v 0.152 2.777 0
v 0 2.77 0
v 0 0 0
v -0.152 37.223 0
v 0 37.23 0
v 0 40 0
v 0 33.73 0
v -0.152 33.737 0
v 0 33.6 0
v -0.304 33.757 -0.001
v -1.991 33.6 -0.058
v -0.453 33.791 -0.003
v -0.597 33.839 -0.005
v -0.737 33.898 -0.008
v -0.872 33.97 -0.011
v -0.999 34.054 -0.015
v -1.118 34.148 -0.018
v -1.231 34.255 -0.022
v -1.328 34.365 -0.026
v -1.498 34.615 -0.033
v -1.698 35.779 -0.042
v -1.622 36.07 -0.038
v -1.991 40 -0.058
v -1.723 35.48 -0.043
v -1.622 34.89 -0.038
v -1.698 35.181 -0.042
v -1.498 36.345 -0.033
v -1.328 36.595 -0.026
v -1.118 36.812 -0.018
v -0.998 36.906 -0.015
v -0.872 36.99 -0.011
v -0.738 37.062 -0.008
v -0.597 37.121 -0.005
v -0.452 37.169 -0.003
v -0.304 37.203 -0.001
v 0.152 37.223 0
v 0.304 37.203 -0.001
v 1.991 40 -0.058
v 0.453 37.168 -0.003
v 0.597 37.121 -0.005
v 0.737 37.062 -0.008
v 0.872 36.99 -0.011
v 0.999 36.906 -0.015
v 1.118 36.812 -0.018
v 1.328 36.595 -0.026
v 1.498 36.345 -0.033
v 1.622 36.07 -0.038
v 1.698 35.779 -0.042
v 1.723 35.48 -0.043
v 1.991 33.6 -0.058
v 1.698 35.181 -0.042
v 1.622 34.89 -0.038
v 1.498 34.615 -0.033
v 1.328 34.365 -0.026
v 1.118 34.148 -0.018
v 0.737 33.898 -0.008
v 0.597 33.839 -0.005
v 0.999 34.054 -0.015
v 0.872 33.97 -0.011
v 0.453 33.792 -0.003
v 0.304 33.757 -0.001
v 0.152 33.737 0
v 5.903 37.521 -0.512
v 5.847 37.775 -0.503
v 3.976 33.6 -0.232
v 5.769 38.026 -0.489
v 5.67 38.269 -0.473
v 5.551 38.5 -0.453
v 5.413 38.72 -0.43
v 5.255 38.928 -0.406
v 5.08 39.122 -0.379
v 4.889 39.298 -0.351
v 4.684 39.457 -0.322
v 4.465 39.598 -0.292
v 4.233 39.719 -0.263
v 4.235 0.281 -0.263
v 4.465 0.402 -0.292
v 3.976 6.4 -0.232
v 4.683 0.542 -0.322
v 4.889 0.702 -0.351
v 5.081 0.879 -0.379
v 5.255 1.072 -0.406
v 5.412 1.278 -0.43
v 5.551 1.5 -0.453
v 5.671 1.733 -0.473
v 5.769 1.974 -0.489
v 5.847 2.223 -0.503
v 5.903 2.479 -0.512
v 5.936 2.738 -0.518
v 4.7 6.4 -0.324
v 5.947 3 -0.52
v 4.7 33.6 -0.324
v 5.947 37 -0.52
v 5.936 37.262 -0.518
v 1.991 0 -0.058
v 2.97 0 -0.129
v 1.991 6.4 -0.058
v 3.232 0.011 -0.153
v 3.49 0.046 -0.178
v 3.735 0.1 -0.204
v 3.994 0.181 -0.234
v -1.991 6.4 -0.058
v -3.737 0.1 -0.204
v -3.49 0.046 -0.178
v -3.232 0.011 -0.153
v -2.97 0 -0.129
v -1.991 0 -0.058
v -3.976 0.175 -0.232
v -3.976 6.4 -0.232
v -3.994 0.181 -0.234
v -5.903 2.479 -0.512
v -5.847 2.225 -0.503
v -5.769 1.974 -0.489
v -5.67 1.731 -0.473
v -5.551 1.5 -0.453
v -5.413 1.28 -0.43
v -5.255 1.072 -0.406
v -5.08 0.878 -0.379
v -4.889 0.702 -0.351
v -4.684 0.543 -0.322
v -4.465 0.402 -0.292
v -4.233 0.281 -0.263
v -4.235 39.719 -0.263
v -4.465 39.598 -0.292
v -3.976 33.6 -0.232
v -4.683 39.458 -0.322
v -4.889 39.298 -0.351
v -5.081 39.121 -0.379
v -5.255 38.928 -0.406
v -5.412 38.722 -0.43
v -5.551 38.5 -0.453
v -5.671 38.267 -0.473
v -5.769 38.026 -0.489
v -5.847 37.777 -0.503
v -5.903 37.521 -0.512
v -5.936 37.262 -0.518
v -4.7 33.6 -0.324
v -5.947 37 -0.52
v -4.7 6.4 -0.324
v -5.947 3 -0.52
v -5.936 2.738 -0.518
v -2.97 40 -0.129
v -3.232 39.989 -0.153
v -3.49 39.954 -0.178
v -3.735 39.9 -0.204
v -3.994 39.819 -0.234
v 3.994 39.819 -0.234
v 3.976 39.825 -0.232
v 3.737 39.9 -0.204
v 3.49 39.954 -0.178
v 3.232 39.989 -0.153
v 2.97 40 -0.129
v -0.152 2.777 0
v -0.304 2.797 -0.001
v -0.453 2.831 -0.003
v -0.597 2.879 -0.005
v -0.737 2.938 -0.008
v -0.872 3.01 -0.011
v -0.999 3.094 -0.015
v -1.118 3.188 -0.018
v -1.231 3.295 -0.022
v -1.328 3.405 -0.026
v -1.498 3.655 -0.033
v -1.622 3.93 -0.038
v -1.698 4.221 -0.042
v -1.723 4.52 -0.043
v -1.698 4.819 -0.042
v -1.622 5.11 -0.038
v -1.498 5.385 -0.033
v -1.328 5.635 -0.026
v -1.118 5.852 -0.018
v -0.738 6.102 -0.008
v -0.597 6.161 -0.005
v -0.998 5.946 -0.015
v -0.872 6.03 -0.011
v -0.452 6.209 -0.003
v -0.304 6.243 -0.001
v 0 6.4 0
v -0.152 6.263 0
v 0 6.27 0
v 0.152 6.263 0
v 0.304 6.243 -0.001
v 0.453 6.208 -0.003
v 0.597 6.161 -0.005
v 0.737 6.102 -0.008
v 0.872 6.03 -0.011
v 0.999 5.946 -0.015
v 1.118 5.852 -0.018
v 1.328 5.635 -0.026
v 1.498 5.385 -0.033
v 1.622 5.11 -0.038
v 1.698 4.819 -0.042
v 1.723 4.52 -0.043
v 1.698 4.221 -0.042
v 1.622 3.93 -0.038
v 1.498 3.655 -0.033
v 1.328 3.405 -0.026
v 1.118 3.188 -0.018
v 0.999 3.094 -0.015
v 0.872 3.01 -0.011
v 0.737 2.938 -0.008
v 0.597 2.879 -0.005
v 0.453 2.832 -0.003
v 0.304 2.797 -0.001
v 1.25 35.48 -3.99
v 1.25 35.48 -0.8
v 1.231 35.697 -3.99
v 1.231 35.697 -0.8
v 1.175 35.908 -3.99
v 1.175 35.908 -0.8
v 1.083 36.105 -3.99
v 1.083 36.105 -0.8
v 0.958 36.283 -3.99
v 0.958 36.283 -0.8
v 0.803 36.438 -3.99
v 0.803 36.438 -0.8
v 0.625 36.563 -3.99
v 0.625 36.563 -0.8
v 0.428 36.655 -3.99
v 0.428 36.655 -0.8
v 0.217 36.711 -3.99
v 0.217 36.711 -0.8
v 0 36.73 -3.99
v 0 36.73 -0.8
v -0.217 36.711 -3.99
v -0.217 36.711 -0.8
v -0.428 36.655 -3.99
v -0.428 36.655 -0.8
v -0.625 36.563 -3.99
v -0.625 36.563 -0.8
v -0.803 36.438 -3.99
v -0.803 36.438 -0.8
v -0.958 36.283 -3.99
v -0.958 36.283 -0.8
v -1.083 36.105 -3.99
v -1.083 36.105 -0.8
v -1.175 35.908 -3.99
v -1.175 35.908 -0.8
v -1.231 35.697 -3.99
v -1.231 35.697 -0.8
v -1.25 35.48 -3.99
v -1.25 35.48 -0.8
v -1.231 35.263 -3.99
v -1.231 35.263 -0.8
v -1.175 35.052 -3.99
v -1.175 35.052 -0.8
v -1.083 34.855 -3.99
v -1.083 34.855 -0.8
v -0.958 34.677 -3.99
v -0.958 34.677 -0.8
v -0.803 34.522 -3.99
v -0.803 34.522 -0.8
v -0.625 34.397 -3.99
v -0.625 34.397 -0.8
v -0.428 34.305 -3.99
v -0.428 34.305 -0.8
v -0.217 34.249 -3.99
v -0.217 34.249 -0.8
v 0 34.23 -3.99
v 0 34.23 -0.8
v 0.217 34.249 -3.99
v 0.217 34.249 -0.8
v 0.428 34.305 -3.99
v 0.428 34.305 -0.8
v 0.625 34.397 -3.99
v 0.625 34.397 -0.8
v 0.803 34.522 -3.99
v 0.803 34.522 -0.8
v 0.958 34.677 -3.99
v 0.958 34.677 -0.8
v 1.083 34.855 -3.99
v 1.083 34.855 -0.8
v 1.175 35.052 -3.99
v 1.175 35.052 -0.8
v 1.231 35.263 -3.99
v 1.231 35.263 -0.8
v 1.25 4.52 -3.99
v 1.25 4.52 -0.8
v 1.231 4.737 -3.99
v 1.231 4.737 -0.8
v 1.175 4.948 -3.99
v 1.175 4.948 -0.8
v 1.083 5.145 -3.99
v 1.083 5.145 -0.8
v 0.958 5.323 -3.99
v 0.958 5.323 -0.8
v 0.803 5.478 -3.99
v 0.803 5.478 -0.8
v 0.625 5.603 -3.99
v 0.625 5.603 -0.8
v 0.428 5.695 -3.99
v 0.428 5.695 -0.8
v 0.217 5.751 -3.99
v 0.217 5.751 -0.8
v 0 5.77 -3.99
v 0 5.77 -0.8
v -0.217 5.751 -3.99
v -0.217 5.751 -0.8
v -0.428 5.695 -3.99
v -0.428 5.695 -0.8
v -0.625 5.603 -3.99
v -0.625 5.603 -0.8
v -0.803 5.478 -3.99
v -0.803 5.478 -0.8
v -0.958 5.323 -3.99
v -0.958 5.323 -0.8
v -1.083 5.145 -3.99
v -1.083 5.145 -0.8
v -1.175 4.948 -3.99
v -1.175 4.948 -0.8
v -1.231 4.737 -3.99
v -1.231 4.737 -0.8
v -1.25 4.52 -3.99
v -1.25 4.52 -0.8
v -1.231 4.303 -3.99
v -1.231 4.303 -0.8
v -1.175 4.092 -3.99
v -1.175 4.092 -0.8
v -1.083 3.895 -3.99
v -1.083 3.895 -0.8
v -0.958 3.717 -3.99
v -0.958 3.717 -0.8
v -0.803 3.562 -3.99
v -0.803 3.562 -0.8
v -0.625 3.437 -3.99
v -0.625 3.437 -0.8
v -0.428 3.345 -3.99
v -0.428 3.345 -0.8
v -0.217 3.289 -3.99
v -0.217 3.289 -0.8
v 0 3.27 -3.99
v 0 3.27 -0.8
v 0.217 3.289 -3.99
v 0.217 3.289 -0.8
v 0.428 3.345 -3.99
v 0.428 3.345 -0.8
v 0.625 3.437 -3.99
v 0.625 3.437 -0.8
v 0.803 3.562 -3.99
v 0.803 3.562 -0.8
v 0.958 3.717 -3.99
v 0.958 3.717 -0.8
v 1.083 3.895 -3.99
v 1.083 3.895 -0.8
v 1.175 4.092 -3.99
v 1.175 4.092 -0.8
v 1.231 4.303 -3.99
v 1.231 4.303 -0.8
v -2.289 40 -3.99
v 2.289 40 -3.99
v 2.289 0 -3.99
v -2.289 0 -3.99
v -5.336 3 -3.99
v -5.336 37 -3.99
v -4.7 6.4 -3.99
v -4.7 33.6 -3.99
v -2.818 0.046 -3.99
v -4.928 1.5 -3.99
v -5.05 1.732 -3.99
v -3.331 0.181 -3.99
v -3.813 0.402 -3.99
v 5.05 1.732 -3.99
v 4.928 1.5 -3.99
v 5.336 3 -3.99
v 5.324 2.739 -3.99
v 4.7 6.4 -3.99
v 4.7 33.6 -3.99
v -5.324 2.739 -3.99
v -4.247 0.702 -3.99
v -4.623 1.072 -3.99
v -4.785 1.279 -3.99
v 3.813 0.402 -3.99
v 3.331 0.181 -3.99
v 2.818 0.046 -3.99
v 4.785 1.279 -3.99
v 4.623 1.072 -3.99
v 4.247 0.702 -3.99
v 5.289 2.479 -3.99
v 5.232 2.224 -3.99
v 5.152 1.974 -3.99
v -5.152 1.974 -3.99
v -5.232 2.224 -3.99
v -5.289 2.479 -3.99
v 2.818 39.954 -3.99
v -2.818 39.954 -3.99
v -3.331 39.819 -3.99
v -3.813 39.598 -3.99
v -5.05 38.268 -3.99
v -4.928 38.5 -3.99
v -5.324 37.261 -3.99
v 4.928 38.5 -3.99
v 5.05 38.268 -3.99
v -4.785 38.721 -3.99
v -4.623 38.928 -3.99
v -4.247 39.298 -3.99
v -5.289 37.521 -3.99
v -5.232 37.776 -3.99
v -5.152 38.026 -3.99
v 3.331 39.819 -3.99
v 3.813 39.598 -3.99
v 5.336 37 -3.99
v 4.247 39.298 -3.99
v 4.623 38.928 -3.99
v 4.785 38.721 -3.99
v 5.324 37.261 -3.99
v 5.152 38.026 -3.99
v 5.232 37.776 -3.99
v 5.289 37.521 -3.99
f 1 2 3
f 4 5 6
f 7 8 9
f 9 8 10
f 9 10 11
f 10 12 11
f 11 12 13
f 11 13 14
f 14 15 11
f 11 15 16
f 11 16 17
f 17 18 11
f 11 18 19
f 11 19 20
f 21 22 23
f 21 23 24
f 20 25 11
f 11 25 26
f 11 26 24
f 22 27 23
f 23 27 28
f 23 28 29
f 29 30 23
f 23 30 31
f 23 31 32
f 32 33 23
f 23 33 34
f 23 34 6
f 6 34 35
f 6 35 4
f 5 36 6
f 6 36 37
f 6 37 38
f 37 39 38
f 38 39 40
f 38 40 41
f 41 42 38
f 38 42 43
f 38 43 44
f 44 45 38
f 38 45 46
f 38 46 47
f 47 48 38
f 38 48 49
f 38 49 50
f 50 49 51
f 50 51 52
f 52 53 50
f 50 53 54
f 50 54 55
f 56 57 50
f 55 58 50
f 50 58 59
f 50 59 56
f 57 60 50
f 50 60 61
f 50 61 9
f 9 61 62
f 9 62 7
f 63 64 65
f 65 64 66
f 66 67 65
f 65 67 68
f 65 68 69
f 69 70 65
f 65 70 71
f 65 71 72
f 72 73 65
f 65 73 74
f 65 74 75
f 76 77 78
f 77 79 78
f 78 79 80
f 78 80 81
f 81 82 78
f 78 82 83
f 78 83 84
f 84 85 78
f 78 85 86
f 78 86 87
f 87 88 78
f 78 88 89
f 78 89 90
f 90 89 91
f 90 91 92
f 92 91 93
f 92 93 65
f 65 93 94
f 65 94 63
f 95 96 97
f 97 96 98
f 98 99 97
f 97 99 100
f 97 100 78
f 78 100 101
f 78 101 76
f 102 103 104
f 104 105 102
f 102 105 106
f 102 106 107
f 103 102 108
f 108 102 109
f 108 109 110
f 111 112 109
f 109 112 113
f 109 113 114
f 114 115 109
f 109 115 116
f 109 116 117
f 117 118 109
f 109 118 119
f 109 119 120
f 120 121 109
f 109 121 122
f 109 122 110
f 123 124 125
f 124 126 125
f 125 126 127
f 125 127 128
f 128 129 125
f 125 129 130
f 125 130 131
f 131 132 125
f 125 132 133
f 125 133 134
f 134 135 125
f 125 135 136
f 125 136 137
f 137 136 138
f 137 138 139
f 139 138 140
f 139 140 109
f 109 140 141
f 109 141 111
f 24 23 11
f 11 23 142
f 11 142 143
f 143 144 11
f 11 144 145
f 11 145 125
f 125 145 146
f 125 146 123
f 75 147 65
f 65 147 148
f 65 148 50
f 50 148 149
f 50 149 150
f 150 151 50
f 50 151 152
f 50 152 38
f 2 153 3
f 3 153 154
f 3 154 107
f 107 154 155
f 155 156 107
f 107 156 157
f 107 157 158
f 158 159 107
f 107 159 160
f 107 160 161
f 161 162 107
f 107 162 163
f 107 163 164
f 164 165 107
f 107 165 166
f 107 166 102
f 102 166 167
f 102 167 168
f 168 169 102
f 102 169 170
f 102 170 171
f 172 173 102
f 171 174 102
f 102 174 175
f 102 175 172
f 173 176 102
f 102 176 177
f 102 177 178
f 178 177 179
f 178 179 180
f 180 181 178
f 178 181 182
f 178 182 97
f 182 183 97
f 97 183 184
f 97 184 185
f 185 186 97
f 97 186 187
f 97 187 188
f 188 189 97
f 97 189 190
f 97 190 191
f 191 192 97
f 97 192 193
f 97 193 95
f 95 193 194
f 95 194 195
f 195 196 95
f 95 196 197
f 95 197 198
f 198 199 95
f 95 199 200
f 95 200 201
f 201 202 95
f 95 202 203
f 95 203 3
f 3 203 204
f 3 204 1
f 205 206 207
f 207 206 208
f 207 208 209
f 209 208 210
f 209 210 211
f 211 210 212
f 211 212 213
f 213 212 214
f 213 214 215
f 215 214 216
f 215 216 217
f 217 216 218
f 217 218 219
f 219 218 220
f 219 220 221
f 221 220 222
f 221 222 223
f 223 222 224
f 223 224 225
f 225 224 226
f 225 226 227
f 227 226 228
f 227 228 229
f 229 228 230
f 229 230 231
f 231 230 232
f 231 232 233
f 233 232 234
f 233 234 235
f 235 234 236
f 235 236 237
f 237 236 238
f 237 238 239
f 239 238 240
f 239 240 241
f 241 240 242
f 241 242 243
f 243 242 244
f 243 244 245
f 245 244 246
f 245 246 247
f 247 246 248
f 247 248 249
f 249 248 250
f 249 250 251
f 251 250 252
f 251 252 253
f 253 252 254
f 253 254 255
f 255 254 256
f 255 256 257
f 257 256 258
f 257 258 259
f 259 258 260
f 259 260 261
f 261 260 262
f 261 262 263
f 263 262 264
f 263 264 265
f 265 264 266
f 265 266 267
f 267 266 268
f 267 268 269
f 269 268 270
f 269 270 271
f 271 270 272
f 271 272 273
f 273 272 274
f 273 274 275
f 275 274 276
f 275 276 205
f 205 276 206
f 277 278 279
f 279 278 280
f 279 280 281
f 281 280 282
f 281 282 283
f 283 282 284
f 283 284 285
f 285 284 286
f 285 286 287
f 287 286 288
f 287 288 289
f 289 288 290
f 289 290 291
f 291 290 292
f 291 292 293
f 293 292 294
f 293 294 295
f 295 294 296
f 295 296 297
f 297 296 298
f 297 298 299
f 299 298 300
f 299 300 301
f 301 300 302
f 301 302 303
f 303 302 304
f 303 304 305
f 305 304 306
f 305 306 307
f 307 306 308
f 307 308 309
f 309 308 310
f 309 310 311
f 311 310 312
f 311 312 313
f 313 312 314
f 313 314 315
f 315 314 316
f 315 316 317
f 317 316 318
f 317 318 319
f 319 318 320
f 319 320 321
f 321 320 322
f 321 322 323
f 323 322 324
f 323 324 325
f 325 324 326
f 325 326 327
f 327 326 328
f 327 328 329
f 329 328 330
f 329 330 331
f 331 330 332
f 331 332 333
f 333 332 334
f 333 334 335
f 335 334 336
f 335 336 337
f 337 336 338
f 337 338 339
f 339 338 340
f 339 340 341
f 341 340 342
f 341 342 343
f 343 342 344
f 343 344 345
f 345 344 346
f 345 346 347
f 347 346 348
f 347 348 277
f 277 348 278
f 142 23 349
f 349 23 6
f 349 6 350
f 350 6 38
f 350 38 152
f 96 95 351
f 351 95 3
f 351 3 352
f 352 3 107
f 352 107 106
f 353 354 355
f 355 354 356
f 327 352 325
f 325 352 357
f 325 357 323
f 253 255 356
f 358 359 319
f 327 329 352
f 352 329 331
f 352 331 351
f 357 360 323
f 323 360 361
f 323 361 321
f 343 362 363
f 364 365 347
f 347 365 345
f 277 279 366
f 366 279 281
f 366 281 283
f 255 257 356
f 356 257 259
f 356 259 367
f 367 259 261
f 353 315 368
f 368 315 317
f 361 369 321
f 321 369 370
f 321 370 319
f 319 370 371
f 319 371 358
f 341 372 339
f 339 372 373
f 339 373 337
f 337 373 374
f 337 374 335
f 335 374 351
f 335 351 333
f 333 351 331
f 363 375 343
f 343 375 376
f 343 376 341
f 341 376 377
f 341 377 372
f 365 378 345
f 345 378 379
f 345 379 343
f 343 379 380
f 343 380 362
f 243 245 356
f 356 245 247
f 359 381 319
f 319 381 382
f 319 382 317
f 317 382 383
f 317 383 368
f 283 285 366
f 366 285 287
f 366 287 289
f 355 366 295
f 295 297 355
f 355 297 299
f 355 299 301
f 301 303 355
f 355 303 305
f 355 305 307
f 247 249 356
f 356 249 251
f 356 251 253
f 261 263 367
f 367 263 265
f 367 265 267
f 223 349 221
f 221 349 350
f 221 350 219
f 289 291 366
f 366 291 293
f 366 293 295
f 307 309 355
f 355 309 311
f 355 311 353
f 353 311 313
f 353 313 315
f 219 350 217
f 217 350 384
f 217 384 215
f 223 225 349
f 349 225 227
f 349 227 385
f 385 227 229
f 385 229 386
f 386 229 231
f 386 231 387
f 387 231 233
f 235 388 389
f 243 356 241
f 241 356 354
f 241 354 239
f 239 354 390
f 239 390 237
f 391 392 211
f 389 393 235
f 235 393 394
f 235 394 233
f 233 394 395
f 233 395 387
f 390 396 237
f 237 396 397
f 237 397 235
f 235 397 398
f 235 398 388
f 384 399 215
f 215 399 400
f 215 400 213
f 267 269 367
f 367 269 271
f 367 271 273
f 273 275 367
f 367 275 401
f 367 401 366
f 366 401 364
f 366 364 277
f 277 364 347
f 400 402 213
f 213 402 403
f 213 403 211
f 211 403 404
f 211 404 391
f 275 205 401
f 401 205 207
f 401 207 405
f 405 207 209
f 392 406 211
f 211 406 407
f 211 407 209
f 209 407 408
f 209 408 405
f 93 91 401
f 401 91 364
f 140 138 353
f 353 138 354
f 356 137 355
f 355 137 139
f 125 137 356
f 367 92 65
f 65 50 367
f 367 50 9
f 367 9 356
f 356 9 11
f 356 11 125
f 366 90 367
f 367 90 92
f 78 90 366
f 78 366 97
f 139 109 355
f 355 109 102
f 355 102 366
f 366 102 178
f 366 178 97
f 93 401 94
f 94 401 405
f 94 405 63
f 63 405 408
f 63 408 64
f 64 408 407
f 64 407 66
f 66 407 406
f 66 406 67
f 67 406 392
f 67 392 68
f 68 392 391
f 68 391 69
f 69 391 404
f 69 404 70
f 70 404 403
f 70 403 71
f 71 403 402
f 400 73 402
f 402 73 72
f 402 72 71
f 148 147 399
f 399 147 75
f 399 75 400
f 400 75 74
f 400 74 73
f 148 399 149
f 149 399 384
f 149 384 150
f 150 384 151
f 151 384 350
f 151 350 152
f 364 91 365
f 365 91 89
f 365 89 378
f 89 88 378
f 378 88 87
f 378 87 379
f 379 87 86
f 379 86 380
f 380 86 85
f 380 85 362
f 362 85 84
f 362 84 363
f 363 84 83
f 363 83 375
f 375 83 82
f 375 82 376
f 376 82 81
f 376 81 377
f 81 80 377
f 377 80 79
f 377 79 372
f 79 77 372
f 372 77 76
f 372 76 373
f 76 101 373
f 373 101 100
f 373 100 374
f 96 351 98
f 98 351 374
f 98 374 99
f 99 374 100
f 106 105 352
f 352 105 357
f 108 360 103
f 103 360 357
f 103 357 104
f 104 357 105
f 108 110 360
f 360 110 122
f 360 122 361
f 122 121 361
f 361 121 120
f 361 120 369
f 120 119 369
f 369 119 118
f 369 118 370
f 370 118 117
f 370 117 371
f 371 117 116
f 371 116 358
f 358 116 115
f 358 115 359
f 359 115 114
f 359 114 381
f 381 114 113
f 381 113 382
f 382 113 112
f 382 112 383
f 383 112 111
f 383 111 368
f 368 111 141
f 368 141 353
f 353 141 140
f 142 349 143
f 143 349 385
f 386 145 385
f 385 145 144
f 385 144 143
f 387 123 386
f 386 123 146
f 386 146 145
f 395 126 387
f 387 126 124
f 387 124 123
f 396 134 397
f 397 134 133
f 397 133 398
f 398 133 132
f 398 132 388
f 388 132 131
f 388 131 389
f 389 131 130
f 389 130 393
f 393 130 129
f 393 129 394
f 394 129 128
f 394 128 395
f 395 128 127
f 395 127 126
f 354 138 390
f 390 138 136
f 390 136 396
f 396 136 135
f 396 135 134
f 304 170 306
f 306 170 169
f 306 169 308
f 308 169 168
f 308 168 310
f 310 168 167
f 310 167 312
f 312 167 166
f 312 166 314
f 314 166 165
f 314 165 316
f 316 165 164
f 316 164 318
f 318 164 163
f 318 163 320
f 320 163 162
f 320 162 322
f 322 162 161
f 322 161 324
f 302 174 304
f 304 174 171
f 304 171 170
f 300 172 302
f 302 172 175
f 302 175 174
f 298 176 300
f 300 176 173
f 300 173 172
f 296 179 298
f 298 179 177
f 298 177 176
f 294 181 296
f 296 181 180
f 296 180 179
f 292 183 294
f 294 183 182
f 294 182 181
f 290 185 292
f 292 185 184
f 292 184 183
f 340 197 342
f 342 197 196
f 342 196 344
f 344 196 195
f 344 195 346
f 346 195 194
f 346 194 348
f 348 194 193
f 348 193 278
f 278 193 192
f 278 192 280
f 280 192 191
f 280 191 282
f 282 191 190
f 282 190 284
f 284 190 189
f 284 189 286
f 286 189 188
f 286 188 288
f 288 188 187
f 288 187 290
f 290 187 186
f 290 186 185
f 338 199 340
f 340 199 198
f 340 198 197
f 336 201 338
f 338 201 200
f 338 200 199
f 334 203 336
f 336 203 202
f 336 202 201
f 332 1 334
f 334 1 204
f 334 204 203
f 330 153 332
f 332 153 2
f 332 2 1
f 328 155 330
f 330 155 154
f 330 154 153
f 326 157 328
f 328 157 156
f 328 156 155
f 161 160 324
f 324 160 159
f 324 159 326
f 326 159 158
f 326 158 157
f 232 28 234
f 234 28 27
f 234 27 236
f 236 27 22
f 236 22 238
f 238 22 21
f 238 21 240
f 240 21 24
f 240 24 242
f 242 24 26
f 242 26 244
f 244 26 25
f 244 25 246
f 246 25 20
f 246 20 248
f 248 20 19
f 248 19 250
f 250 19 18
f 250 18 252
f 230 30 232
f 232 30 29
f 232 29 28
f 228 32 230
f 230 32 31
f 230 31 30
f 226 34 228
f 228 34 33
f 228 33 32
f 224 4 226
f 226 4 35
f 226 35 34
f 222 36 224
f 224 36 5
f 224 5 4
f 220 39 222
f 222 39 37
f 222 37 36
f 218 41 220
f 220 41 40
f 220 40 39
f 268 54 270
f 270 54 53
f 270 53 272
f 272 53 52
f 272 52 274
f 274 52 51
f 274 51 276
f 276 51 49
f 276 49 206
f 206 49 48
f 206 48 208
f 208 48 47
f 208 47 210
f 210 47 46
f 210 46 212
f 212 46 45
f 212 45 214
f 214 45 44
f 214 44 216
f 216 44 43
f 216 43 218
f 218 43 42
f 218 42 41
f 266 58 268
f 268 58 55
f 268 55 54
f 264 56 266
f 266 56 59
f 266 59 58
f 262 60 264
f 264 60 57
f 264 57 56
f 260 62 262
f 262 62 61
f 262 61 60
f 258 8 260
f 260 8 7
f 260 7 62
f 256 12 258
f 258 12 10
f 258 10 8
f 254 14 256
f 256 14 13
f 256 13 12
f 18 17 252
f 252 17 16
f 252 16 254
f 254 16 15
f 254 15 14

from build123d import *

# Parameters (mm, degrees)
SKETCH1_W                         = 2
SKETCH1_H                         = 40
BULK_EXTRUDE_ANGLE                = 20
CONNECTOR_PASSTHRU_DEPTH          = 41.516317865
CONNECTOR_PASSTHRU_DEPTH_BACK     = 41.516317865
SKETCH2_R                         = 1.25
SKETCH2_W                         = 9.4
SKETCH2_H                         = 27.2
REAR_FLATTENING_REACH             = 42.516
SKETCH3_W                         = 11.20030746
SKETCH3_H                         = 40
SKETCH3_R                         = 1.25
SKETCH3_W_2                       = 9.4
SKETCH3_H_2                       = 27.2
REAR_FLATTENING_DIRECTION_2_DEPTH = 1.5
SKETCH4_W                         = 5.422124609
SKETCH4_H                         = 40
CUT_EXTRUDE2_DEPTH                = 42.810193065
SKETCH5_W                         = 5.376196321
SKETCH5_H                         = 40
CUT_EXTRUDE3_DEPTH                = 42.810193065
FILLET1_R                         = 3


with BuildPart() as part:
    # Sketch1 → BULK EXTRUDE (revolve, symmetric)
    with BuildSketch(Plane(origin=(0, 0, 0), x_dir=(0, 0, -1), z_dir=(1, 0, 0))) as bulk_extrude_sk:
        with Locations((1, 20)):
            Rectangle(SKETCH1_W, SKETCH1_H)
    revolve(axis=Axis((0, 0, -34.25), (0, 1, 0)), revolution_arc=BULK_EXTRUDE_ANGLE / 2)
    revolve(bulk_extrude_sk.sketch, axis=Axis((0, 0, -34.25), (0, -1, 0)), revolution_arc=BULK_EXTRUDE_ANGLE / 2)

    # Sketch2 → CONNECTOR PASSTHRU (cut, two sides: drawn at the far end of the back side and taken through both)
    with BuildSketch(Plane.XY.offset(-CONNECTOR_PASSTHRU_DEPTH_BACK)):
        with Locations((0, 4.52)):
            Circle(SKETCH2_R)
        with Locations((0, 35.48)):
            Circle(SKETCH2_R)
        with Locations((0, 20)):
            Rectangle(SKETCH2_W, SKETCH2_H)
    extrude(amount=CONNECTOR_PASSTHRU_DEPTH + CONNECTOR_PASSTHRU_DEPTH_BACK, mode=Mode.SUBTRACT)

    # Sketch3 → REAR FLATTENING (add, up to next)
    with BuildSketch(Plane.XY.offset(-2.489949965), mode=Mode.PRIVATE) as rear_flattening_sk1:
        with Locations((0, 20)):
            Rectangle(SKETCH3_W, SKETCH3_H)
        with Locations((0, 4.52)):
            Circle(SKETCH3_R, mode=Mode.SUBTRACT)
        with Locations((0, 35.48)):
            Circle(SKETCH3_R, mode=Mode.SUBTRACT)
        with Locations((0, 20)):
            Rectangle(SKETCH3_W_2, SKETCH3_H_2, mode=Mode.SUBTRACT)
    rear_flattening_tool1 = extrude(rear_flattening_sk1.sketch, amount=REAR_FLATTENING_REACH, mode=Mode.PRIVATE) - part.part
    add(rear_flattening_tool1.solids().sort_by_distance((0, 0.415385, -2.48995))[0])

    # Sketch3 → REAR FLATTENING direction 2 (add)
    with BuildSketch(Plane.XY.offset(-2.489949965)):
        with Locations((0, 20)):
            Rectangle(SKETCH3_W, SKETCH3_H)
        with Locations((0, 4.52)):
            Circle(SKETCH3_R, mode=Mode.SUBTRACT)
        with Locations((0, 35.48)):
            Circle(SKETCH3_R, mode=Mode.SUBTRACT)
        with Locations((0, 20)):
            Rectangle(SKETCH3_W_2, SKETCH3_H_2, mode=Mode.SUBTRACT)
    extrude(amount=-REAR_FLATTENING_DIRECTION_2_DEPTH)

    # Sketch4 → Cut-Extrude2 (cut, through all)
    with BuildSketch(Plane(origin=(5.857094954, 0, -1.032763869), x_dir=(-0.17364817766693075, 0, -0.9848077530122081), z_dir=(0.9848077530122081, 0, -0.17364817766693075))):
        with Locations((2.190727846, 20)):
            Rectangle(SKETCH4_W, SKETCH4_H)
    extrude(amount=CUT_EXTRUDE2_DEPTH, mode=Mode.SUBTRACT)

    # Sketch5 → Cut-Extrude3 (cut, through all)
    with BuildSketch(Plane(origin=(-5.857094954, 0, -1.032763869), x_dir=(-0.17364817766693072, 0, 0.9848077530122081), z_dir=(-0.9848077530122081, 0, -0.17364817766693072))):
        with Locations((-2.167763702, 20)):
            Rectangle(SKETCH5_W, SKETCH5_H)
    extrude(amount=CUT_EXTRUDE3_DEPTH, mode=Mode.SUBTRACT)

    # Fillet1
    fillet1_edges = [part.edges().sort_by_distance(p)[0] for p in [
        (5.641556672, 40, -2.255142212),
        (5.641556672, 0, -2.255142212),
        (-5.641556672, 0, -2.255142212),
        (-5.641556672, 40, -2.255142212),
    ]]
    fillet(fillet1_edges, radius=FILLET1_R)

    # Sketch6 → Cut-Revolve1 (revolve, cut)
    with BuildSketch(Plane.ZY):
        Polygon((0, 4.52), (0, 6.27), (-1, 5.645), (-1, 4.52), align=None)
    cut_revolve1 = revolve(axis=Axis((0, 4.52, -3.989949965), (0, 0, 1)), mode=Mode.SUBTRACT)

    # Mirror1: Cut-Revolve1 across plane
    add(cut_revolve1.mirror(Plane.ZX.offset(20)), mode=Mode.SUBTRACT)


solid = part.part
